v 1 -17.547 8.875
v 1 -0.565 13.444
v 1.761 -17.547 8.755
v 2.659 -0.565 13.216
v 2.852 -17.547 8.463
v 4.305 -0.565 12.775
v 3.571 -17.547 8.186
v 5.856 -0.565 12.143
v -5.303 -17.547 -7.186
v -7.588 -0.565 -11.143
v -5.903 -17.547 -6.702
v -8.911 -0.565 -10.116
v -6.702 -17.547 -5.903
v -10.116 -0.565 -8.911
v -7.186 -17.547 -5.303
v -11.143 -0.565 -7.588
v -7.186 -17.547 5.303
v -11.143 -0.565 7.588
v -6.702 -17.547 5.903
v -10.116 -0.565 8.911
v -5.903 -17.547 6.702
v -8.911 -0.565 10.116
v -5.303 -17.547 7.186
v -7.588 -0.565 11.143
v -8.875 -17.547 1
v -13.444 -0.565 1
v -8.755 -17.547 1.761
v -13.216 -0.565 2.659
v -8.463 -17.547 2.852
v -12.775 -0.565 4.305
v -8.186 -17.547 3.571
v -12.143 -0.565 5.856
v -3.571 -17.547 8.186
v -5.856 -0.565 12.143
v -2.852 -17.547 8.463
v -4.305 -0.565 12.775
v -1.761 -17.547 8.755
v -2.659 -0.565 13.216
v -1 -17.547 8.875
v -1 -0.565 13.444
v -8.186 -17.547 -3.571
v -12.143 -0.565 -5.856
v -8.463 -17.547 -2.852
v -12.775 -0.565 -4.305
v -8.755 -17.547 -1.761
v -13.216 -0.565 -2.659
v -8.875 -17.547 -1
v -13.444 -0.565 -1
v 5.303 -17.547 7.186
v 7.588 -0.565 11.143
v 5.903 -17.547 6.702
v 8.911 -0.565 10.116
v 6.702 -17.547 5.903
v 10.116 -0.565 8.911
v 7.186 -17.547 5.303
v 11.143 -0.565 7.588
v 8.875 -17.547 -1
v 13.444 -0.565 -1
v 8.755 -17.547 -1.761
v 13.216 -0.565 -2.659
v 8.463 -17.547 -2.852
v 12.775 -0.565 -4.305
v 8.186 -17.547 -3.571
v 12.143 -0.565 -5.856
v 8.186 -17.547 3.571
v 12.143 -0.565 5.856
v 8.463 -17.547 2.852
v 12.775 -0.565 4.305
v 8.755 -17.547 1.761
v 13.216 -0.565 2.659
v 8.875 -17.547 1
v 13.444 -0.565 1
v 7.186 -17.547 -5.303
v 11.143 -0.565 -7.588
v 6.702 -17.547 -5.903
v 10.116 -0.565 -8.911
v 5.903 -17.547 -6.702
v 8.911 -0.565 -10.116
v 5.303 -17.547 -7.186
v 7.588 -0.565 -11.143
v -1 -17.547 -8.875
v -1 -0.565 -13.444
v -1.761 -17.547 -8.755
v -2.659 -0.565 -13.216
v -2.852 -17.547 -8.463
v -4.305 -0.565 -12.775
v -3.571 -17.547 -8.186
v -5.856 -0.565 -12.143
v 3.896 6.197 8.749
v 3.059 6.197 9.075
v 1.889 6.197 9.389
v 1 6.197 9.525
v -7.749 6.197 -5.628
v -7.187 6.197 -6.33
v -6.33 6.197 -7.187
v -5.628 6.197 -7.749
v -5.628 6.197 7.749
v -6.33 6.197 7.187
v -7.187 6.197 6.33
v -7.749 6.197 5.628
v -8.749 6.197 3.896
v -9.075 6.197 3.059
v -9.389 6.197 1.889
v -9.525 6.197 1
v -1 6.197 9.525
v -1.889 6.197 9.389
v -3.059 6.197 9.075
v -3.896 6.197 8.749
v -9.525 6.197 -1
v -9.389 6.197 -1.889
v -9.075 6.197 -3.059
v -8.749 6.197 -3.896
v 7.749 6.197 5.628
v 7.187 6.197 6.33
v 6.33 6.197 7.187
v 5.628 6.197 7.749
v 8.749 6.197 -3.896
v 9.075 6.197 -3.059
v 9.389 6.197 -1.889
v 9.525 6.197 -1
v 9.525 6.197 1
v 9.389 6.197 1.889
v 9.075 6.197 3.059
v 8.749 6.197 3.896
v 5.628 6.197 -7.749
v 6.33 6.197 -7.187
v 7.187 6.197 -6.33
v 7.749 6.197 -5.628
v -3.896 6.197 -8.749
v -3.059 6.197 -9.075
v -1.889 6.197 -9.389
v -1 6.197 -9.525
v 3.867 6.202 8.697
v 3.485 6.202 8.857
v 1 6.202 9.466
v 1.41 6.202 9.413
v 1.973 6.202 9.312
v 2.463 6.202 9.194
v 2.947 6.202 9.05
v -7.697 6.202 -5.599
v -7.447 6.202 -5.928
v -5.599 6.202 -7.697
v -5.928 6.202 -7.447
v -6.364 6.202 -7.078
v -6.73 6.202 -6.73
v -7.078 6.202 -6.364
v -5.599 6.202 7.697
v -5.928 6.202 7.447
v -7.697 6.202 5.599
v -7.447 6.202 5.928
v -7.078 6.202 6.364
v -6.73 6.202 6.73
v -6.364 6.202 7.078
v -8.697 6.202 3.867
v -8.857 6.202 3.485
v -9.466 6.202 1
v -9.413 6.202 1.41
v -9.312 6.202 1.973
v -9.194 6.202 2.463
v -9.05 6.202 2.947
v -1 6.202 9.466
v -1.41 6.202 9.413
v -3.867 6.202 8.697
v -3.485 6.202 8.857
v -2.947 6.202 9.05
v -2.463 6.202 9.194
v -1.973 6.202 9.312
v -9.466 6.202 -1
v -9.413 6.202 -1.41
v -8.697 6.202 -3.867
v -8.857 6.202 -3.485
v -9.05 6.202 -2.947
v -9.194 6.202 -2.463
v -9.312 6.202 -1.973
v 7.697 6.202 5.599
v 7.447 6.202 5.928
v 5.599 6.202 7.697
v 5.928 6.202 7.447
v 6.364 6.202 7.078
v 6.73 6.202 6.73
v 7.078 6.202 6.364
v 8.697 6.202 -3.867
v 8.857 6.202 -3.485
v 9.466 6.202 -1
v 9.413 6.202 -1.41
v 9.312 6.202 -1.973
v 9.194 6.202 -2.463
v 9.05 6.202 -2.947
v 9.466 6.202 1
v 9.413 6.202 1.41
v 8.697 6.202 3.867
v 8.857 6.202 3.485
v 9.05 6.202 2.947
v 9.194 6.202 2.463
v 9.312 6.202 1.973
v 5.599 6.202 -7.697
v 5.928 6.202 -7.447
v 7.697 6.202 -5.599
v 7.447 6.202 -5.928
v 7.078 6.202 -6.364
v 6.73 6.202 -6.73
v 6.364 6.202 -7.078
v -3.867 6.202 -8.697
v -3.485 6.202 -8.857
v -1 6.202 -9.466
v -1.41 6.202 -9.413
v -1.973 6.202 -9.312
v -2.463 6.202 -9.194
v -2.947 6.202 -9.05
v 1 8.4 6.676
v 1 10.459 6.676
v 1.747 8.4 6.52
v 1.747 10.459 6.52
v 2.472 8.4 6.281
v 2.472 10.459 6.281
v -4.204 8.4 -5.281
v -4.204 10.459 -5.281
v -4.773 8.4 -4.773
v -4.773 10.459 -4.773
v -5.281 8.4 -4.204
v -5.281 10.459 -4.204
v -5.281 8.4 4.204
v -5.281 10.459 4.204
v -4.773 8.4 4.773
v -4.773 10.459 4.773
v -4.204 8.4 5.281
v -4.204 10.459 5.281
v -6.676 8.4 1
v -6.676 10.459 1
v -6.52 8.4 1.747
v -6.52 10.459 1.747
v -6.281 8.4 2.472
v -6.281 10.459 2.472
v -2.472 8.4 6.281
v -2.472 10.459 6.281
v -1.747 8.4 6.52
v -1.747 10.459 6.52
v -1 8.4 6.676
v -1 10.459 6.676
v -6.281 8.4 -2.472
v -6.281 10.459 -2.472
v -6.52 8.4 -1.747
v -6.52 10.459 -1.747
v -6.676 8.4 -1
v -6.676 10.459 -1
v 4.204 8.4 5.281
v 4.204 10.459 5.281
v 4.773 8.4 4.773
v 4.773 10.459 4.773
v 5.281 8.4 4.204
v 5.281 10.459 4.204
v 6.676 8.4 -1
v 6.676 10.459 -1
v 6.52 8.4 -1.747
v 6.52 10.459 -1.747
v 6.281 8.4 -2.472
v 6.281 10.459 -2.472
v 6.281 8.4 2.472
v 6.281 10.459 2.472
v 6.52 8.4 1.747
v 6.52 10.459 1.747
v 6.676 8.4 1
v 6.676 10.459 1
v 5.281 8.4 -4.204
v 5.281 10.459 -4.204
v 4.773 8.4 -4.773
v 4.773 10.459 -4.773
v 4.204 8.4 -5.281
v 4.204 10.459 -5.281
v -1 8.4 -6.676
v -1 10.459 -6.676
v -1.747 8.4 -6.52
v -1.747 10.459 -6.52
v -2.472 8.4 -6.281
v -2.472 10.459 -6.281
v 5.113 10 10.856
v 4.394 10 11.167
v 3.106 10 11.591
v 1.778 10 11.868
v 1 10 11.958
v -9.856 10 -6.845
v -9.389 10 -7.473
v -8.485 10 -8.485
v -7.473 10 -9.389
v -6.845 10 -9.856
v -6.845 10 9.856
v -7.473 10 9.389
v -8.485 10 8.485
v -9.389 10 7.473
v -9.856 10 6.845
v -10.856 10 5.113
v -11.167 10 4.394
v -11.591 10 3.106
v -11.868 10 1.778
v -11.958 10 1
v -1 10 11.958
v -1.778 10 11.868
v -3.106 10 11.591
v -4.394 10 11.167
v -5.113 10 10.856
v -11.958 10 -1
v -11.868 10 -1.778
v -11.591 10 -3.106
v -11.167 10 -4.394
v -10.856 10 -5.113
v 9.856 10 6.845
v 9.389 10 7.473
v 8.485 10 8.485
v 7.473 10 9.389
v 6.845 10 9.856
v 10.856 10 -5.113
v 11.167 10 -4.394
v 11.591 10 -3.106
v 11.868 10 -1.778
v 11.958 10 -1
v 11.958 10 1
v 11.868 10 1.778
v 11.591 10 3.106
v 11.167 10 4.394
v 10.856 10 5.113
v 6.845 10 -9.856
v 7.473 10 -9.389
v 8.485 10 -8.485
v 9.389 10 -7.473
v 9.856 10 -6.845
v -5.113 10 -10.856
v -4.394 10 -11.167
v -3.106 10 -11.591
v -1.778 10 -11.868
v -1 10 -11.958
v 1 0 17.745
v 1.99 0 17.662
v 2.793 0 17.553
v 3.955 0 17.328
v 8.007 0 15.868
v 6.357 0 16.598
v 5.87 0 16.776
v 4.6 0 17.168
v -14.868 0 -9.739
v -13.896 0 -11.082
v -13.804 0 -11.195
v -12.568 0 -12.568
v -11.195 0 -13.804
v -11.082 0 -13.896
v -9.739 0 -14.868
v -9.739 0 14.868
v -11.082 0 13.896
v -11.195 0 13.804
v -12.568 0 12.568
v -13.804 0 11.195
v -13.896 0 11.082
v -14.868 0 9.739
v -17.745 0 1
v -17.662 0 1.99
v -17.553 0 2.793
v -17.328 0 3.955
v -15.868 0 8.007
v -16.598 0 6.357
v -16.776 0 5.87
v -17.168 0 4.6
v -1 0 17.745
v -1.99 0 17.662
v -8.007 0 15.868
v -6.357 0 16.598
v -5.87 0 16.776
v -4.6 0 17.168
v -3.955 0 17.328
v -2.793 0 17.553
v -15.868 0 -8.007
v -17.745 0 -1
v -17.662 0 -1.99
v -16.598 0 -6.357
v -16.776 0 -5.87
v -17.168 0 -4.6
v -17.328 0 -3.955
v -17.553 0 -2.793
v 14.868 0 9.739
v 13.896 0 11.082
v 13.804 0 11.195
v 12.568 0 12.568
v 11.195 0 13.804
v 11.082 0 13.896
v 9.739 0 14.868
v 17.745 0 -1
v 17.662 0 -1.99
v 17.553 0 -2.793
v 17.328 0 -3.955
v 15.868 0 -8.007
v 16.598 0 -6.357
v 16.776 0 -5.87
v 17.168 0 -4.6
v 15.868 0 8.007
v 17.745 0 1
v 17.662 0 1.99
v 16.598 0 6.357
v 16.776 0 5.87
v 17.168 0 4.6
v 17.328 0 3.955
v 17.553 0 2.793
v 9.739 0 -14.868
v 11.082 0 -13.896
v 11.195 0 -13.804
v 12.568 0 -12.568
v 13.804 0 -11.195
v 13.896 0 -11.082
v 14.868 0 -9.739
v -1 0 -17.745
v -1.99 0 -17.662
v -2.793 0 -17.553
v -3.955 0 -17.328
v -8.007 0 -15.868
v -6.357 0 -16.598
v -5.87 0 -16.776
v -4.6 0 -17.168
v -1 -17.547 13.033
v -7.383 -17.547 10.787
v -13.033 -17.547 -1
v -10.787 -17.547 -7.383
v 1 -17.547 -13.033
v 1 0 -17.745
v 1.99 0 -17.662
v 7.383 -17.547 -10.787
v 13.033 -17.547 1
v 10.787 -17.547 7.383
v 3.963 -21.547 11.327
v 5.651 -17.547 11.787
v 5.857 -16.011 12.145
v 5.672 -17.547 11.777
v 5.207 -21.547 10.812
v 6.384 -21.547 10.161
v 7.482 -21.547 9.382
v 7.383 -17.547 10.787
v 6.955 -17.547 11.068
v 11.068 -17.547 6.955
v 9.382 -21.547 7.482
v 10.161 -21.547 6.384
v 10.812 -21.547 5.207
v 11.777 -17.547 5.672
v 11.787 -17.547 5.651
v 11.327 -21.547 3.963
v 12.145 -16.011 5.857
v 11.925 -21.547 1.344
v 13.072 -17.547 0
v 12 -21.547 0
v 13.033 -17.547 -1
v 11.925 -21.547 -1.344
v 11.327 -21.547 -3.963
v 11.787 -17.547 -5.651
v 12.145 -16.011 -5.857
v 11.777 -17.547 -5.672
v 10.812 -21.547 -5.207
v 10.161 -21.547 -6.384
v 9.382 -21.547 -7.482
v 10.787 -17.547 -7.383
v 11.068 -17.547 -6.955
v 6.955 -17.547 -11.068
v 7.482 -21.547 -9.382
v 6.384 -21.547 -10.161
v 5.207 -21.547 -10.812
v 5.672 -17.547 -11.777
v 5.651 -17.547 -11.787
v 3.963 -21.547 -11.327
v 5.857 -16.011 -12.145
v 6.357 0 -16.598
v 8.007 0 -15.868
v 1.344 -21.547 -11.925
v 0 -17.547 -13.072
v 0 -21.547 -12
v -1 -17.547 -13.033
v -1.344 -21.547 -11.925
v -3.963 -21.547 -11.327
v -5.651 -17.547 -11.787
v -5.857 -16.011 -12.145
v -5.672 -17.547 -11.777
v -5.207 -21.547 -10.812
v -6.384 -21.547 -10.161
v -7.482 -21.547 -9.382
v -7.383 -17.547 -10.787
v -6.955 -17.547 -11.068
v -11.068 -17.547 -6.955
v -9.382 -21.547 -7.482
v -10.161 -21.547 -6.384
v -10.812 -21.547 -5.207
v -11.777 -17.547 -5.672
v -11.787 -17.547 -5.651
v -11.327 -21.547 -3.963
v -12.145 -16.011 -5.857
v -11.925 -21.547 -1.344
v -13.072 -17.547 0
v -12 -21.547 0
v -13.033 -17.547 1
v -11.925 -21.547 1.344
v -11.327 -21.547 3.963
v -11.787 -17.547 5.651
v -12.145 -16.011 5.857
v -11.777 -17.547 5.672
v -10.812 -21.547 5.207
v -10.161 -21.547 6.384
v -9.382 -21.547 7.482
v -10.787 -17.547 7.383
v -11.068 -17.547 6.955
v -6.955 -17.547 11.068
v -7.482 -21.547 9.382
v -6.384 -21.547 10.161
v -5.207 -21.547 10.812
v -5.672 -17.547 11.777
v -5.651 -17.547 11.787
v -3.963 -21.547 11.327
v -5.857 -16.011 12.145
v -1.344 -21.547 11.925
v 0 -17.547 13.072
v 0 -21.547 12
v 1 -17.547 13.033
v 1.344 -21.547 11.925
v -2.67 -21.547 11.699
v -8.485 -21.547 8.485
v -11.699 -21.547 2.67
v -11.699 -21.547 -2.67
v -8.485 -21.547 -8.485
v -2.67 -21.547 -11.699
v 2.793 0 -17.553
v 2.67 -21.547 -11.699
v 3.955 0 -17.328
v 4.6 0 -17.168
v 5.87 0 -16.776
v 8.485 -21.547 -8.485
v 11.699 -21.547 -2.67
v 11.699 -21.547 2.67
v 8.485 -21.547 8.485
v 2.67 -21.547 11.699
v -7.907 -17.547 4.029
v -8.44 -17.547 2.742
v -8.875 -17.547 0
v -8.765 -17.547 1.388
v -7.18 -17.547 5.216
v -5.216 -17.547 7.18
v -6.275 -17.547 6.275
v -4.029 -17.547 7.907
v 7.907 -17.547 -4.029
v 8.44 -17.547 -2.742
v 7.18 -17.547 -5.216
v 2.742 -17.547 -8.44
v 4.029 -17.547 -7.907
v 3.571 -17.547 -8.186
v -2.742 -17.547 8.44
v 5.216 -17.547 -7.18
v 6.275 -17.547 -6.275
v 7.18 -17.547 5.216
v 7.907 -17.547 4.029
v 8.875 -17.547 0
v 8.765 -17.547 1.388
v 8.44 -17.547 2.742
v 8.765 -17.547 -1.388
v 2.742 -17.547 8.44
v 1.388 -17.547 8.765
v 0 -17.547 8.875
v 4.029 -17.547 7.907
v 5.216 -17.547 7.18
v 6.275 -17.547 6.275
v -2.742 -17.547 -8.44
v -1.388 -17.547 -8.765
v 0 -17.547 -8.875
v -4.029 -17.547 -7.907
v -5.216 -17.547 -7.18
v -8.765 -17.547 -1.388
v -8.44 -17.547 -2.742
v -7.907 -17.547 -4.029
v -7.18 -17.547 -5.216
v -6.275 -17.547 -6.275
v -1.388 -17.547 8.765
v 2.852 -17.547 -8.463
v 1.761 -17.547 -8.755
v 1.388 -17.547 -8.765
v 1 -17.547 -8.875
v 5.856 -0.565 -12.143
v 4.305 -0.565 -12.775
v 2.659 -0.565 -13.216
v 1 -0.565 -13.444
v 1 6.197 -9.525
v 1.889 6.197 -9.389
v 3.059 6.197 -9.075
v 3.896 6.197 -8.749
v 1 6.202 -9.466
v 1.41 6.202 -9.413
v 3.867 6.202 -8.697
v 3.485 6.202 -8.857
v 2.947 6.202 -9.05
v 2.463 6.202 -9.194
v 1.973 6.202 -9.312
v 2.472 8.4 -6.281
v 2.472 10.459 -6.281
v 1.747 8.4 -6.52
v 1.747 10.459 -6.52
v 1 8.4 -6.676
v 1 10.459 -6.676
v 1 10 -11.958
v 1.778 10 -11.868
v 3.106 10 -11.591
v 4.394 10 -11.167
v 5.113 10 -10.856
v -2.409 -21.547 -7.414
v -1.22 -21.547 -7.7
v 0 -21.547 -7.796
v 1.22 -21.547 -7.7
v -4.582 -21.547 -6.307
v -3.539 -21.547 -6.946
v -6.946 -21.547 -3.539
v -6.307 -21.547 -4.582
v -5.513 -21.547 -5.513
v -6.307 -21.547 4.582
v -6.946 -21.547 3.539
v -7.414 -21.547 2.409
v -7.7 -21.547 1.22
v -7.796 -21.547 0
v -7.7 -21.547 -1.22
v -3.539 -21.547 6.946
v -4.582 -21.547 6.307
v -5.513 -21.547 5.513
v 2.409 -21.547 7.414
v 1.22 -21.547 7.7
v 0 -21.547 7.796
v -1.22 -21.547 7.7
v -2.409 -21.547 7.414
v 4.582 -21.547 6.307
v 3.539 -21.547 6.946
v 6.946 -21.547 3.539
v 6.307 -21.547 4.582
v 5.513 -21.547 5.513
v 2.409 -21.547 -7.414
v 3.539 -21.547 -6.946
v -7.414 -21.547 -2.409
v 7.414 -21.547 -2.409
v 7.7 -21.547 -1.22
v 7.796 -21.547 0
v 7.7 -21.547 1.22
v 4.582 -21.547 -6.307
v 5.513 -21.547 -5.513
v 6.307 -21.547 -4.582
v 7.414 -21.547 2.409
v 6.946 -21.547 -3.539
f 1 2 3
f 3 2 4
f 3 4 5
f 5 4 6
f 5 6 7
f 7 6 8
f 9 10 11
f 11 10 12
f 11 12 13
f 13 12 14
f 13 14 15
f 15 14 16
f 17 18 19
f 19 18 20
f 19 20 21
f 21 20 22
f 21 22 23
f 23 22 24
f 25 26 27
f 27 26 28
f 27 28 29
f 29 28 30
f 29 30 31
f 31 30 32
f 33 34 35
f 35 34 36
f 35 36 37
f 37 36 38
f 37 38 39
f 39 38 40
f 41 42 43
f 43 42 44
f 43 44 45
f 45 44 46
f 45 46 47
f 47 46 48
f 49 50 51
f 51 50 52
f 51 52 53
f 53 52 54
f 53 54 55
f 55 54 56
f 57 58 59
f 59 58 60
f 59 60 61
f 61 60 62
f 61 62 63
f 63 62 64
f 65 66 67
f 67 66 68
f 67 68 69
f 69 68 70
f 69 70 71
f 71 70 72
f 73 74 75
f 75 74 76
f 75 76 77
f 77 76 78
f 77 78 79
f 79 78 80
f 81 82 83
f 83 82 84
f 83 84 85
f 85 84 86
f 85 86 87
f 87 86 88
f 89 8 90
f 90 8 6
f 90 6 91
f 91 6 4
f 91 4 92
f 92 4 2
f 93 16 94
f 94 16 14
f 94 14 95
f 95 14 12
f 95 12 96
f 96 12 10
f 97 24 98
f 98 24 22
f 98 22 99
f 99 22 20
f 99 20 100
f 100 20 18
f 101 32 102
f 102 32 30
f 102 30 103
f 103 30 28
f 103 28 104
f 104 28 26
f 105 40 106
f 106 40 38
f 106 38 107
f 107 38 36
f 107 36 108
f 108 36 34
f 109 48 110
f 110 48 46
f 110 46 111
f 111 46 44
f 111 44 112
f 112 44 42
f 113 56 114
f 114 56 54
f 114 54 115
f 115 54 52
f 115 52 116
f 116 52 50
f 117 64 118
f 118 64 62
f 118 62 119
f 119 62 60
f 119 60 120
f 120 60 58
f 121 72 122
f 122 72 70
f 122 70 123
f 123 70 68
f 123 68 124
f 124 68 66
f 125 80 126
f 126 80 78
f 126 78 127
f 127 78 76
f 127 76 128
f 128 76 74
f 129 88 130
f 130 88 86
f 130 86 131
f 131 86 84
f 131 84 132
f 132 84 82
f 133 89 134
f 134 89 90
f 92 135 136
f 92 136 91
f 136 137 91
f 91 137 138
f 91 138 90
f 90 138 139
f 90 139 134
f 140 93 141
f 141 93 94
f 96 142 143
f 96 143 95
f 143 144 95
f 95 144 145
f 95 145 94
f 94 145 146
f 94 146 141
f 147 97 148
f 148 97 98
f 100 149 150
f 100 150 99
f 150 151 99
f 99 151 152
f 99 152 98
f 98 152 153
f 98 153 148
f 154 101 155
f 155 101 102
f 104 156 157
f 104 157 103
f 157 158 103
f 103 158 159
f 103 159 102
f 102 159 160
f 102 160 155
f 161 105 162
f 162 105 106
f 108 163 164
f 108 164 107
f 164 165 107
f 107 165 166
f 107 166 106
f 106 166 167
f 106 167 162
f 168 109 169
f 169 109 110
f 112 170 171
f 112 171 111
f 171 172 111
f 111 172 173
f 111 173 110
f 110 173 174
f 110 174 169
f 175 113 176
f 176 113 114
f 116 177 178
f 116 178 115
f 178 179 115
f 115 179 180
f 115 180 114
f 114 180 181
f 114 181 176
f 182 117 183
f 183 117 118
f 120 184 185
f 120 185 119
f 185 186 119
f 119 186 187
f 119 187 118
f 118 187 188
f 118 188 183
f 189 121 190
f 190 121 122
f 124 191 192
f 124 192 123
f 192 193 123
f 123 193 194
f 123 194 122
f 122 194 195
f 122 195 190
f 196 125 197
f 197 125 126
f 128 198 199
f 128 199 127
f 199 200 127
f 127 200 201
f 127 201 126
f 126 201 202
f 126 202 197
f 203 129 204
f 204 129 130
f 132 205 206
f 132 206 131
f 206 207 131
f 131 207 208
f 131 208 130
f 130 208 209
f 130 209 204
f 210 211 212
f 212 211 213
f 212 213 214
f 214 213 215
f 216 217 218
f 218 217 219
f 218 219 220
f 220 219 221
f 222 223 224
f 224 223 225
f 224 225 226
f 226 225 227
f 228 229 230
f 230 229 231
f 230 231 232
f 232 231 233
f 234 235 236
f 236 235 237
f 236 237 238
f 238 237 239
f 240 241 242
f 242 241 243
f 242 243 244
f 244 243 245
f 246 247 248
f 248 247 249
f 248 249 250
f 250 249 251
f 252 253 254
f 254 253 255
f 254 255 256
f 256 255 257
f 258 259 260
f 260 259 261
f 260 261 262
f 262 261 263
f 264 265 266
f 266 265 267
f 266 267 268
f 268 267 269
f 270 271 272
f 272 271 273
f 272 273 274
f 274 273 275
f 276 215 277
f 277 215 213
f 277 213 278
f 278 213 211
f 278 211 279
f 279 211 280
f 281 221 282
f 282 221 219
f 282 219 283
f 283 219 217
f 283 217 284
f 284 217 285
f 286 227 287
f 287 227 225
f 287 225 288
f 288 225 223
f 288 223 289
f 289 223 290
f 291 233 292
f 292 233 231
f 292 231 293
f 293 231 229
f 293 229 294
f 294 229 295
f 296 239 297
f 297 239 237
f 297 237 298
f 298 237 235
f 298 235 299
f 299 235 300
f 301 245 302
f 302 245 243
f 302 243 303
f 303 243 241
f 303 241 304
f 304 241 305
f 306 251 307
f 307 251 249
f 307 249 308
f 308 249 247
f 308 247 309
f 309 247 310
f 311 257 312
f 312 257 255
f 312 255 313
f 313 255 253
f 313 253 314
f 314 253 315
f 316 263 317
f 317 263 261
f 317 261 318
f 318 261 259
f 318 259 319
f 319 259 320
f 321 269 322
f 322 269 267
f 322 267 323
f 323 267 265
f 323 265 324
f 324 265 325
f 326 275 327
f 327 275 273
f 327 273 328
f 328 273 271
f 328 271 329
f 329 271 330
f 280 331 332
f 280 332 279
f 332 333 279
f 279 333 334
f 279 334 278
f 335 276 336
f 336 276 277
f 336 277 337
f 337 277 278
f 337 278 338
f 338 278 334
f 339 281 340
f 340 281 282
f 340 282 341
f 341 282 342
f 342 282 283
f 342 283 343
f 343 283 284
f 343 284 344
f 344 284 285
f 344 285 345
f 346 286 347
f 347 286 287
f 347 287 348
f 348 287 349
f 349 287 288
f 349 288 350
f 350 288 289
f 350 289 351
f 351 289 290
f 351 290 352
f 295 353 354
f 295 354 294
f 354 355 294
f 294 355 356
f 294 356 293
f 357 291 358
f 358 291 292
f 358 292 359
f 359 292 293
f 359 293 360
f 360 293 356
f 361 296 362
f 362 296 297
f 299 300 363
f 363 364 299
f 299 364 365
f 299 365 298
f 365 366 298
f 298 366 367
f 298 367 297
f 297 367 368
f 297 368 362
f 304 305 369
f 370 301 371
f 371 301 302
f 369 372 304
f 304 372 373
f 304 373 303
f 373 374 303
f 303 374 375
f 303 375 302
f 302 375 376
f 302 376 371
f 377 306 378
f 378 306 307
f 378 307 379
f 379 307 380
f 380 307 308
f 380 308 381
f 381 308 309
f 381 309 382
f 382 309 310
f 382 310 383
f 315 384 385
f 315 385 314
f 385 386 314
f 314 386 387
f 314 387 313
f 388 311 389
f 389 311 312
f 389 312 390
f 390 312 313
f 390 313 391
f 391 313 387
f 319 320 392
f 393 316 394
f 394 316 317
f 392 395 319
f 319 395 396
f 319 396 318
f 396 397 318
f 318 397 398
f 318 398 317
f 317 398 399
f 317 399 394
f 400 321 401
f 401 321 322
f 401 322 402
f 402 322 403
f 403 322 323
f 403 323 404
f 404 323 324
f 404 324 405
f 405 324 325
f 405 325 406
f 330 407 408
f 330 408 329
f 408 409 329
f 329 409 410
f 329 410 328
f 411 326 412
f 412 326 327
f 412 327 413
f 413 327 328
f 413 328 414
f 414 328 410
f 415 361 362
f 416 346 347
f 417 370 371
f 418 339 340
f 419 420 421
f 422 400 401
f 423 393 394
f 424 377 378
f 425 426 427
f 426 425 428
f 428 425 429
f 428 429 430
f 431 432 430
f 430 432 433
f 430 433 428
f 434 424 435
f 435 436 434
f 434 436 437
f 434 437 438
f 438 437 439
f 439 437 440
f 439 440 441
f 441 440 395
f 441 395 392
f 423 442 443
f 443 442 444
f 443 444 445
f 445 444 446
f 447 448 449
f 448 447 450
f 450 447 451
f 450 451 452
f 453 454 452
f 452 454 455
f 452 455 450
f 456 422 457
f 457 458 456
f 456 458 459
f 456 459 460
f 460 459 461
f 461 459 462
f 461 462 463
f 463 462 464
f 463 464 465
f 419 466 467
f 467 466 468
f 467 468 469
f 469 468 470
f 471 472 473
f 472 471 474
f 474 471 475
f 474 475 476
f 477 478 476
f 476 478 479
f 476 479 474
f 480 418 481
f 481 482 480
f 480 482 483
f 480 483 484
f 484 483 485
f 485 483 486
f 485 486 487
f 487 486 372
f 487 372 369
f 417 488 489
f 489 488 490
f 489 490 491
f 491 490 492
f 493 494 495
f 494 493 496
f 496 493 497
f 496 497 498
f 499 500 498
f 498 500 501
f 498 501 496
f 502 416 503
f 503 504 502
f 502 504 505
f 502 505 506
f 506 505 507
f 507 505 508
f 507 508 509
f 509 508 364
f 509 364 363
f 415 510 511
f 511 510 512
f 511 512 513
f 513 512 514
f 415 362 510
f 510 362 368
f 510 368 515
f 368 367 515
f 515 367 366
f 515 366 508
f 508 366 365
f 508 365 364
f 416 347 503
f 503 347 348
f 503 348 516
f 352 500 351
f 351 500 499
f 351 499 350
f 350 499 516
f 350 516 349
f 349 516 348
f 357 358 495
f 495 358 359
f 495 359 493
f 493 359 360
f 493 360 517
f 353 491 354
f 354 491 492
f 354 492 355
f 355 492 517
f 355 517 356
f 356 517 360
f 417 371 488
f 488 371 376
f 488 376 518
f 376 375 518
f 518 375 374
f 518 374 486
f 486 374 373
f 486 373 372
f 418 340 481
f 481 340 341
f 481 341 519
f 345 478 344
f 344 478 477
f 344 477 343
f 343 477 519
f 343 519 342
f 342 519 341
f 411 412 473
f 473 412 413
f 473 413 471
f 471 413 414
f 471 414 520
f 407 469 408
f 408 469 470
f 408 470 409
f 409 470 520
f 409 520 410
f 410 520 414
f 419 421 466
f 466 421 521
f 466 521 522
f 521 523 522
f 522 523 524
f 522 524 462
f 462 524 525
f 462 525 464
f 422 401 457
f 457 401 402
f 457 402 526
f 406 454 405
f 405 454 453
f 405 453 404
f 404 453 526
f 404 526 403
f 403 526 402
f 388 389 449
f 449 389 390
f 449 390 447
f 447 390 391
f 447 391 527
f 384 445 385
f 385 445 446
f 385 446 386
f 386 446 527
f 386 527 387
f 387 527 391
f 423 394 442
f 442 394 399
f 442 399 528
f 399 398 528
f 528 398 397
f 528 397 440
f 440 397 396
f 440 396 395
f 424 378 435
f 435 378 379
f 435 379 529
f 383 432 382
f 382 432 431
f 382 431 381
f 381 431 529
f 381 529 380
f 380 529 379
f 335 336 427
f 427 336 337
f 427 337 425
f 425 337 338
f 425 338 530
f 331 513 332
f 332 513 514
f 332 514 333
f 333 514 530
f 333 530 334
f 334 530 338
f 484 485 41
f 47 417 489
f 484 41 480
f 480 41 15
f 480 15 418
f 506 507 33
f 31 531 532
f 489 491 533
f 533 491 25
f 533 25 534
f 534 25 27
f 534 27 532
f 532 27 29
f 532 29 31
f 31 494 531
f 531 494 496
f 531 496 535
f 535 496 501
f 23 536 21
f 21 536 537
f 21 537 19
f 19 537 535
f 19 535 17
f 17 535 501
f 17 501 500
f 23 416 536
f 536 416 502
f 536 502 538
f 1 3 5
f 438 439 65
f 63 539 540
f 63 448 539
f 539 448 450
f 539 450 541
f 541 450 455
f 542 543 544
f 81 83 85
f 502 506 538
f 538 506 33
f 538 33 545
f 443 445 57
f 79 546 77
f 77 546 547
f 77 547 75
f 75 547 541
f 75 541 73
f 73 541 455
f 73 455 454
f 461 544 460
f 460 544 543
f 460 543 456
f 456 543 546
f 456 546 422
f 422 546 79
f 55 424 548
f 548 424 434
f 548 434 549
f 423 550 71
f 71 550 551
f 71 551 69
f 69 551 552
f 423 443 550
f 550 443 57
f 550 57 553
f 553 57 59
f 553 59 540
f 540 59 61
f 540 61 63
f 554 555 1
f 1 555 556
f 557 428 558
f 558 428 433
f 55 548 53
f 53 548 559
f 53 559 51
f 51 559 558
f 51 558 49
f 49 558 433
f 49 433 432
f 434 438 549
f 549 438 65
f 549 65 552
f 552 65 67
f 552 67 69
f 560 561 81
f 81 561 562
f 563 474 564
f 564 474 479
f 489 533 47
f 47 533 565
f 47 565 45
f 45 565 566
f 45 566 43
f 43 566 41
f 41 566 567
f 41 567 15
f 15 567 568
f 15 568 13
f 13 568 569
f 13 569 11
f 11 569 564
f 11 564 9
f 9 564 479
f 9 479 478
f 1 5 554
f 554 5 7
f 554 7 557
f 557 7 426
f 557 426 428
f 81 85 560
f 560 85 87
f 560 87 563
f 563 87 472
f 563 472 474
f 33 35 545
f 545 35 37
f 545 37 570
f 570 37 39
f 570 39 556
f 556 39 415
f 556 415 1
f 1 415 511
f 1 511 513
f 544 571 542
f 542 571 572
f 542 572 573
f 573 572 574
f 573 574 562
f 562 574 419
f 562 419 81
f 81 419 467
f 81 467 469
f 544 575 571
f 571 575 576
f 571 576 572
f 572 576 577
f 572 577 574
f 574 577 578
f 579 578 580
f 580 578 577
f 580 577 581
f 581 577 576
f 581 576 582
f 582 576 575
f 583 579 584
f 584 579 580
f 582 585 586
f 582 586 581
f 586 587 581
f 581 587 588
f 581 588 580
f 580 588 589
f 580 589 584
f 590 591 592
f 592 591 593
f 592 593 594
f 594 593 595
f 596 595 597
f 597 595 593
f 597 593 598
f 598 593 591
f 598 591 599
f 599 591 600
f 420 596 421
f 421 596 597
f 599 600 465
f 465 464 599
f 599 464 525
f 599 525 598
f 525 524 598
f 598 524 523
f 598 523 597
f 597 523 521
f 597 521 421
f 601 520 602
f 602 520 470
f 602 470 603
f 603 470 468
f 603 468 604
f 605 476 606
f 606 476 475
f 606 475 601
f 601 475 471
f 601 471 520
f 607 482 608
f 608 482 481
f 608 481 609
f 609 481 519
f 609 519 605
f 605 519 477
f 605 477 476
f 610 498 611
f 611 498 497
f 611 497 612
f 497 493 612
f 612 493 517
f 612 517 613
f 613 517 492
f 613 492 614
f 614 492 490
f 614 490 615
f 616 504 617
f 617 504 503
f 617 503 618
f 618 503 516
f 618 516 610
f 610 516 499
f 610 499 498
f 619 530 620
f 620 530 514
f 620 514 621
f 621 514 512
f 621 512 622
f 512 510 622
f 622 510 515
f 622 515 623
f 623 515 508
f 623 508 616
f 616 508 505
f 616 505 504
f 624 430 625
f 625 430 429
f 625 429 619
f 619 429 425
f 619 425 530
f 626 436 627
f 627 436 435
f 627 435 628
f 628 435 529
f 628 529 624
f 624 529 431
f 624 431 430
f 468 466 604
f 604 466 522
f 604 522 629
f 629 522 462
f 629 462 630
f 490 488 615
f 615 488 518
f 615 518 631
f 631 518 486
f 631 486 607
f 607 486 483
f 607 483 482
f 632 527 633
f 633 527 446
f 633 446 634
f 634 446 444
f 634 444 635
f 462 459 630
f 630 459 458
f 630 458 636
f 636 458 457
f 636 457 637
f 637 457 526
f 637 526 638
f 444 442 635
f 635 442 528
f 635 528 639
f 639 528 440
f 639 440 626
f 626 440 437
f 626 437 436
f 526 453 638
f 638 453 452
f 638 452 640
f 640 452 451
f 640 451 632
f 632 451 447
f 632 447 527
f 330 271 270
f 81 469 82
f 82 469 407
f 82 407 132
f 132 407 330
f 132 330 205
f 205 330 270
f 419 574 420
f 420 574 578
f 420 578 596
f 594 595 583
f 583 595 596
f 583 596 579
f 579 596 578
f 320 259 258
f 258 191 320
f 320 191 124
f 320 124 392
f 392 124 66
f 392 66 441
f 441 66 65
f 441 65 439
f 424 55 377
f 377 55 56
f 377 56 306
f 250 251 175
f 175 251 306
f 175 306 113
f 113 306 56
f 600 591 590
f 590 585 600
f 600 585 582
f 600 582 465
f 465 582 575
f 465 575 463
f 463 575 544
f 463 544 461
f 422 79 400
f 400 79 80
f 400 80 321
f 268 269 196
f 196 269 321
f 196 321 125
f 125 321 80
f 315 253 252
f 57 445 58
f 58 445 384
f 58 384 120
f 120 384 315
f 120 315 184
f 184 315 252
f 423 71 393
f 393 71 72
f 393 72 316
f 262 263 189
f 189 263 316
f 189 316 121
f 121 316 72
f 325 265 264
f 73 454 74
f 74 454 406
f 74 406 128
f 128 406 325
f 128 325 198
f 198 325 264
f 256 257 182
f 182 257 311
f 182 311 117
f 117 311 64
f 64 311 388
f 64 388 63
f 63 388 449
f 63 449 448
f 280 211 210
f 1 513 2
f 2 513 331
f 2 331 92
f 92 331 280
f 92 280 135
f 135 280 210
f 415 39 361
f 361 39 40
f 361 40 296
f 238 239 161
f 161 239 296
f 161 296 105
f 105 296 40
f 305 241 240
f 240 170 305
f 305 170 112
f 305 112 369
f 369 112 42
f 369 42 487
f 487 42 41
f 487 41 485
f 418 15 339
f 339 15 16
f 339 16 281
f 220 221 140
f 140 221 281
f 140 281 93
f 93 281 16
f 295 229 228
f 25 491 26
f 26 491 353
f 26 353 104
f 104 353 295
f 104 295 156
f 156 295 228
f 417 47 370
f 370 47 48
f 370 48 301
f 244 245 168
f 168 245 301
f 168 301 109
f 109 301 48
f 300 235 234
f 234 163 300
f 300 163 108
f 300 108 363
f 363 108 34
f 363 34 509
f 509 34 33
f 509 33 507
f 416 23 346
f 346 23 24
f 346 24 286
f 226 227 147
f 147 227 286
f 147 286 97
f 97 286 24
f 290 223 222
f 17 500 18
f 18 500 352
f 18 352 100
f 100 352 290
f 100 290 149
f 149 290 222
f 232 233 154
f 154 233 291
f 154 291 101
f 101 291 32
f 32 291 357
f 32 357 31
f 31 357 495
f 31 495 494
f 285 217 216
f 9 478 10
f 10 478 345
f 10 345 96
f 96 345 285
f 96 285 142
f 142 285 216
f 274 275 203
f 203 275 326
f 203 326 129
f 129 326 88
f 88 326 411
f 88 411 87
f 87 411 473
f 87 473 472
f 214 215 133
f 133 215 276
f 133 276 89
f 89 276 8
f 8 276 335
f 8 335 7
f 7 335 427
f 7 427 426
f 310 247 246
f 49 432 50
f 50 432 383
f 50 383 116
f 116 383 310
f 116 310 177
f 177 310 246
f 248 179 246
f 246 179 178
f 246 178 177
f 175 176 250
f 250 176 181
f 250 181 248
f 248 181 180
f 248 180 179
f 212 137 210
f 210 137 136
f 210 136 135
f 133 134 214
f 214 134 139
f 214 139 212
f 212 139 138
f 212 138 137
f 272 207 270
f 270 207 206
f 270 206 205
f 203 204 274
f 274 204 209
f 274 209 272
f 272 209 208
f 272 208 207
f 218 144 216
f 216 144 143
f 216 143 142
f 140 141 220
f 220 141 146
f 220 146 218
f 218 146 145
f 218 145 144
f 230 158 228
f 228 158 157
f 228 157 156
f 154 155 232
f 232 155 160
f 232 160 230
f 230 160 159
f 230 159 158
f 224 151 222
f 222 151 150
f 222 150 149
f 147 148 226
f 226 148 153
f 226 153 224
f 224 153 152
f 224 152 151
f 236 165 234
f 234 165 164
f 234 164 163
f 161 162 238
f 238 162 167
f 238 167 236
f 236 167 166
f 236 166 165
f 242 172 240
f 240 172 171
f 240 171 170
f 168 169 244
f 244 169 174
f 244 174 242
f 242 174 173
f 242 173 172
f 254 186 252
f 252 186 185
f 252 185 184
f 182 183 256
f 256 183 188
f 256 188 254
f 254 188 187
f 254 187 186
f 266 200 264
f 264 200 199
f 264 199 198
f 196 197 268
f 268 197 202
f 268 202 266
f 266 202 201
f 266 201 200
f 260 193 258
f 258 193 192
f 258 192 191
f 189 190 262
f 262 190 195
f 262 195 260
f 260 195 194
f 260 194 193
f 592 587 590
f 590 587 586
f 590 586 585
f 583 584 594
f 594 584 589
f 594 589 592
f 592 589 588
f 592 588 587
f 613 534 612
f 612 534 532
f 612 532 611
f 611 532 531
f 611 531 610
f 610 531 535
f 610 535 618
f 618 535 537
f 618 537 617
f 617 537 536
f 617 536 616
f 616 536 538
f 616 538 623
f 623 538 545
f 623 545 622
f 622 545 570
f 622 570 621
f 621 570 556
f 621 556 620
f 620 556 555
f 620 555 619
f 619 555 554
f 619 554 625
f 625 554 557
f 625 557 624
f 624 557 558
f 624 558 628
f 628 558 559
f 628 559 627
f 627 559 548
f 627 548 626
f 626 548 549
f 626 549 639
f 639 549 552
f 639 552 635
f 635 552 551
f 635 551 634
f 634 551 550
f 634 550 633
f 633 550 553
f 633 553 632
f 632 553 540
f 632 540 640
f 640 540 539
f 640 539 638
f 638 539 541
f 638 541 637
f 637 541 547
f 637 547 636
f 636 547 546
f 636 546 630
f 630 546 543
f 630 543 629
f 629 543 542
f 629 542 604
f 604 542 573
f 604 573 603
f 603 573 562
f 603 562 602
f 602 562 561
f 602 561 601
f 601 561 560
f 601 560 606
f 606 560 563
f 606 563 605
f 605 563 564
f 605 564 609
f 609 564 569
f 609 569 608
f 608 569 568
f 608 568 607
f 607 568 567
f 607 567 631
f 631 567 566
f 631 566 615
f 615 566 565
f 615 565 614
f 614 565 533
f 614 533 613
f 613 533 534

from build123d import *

# Parameters (mm, degrees)
SKETCH_6_R               = 6.75
CUT_EXTRUDE_3_DEPTH      = 2.049864
CUT_EXTRUDE_3_DEPTH_BACK = 32.547005
SKETCH_8_W               = 2
SKETCH_8_H               = 35.547006
SKETCH_8_W_2             = 35.547006
SKETCH_8_H_2             = 2
CUT_EXTRUDE_4_DEPTH      = 1.459315
CUT_EXTRUDE_4_DEPTH_BACK = 27.547005


with BuildPart() as part:
    # 草图2 → 旋转1 (revolve)
    with BuildSketch(Plane.XY):
        Polygon((0, 11.049864), (0, 10), (-12, 10), align=None)
        Polygon((0, 10), (0, -21.547005), (-12, -21.547005), (-17.773503, 0), (-12, 10), align=None)
    revolve(axis=Axis((0, -736.81226, 0), (0, 1, 0)))

    # 草图7 one side → 切除-旋转2 (revolve, cut)
    with BuildSketch(Plane.XY):
        Polygon((0, -17.547005), (0, 7.034585), (-9.577032, 6.196703), (-13.480974, -0.565122), (-8.930692, -17.547005), align=None)
    revolve(axis=Axis((0, -1000, 0), (0, 1, 0)), mode=Mode.SUBTRACT)

    # 草图6 → 切除-拉伸3 (cut, two sides)
    with BuildSketch(Plane(origin=(0, 10, 0), x_dir=(1, 0, 0), z_dir=(0, 1, 0))) as cut_extrude_3_sk:
        Circle(SKETCH_6_R)
    extrude(amount=CUT_EXTRUDE_3_DEPTH, mode=Mode.SUBTRACT)
    extrude(cut_extrude_3_sk.sketch, amount=-CUT_EXTRUDE_3_DEPTH_BACK, mode=Mode.SUBTRACT)

    # 草图8 → 切除-拉伸4 (cut, two sides)
    with BuildSketch(Plane(origin=(0, 10, 0), x_dir=(1, 0, 0), z_dir=(0, 1, 0))) as cut_extrude_4_sk:
        Polygon((9.752777, 14.892305), (-8.020726, -15.892305), (-9.752777, -14.892305), (8.020726, 15.892305), align=None)
        Rectangle(SKETCH_8_W, SKETCH_8_H)
        Polygon((15.892305, 8.020726), (-14.892305, -9.752777), (-15.892305, -8.020726), (14.892305, 9.752777), align=None)
        Rectangle(SKETCH_8_W_2, SKETCH_8_H_2)
        Polygon((14.892305, -9.752777), (-15.892305, 8.020726), (-14.892305, 9.752777), (15.892305, -8.020726), align=None)
        Polygon((8.020726, -15.892305), (-9.752777, 14.892305), (-8.020726, 15.892305), (9.752777, -14.892305), align=None)
    extrude(amount=CUT_EXTRUDE_4_DEPTH, mode=Mode.SUBTRACT)
    extrude(cut_extrude_4_sk.sketch, amount=-CUT_EXTRUDE_4_DEPTH_BACK, mode=Mode.SUBTRACT)

    # 草图10 → 切除-旋转3 (revolve, cut)
    with BuildSketch(Plane.XY):
        with BuildLine():
            Line((6.675515, 8.459315), (6.675515, 6.444036))
            add(Edge.make_bspline(
                [(9.524681, 6.196703), (8.574975, 6.279337), (7.625259, 6.361861), (6.675515, 6.444036)],
                knots=[0, 0, 0, 0, 1, 1, 1, 1], degree=3))
            Line((9.524681, 6.196703), (6.675515, 8.459315))
        make_face()
    revolve(axis=Axis((0, -1000, 0), (0, 1, 0)), mode=Mode.SUBTRACT)

    # 草图11 → 切除-旋转4 (revolve, cut)
    with BuildSketch(Plane.XY):
        Polygon((6.75, -21.547005), (6.75, -17.547005), (8.874529, -17.547005), (7.795949, -21.547005), align=None)
    revolve(axis=Axis((0, -1000, 0), (0, 1, 0)), mode=Mode.SUBTRACT)


solid = part.part
